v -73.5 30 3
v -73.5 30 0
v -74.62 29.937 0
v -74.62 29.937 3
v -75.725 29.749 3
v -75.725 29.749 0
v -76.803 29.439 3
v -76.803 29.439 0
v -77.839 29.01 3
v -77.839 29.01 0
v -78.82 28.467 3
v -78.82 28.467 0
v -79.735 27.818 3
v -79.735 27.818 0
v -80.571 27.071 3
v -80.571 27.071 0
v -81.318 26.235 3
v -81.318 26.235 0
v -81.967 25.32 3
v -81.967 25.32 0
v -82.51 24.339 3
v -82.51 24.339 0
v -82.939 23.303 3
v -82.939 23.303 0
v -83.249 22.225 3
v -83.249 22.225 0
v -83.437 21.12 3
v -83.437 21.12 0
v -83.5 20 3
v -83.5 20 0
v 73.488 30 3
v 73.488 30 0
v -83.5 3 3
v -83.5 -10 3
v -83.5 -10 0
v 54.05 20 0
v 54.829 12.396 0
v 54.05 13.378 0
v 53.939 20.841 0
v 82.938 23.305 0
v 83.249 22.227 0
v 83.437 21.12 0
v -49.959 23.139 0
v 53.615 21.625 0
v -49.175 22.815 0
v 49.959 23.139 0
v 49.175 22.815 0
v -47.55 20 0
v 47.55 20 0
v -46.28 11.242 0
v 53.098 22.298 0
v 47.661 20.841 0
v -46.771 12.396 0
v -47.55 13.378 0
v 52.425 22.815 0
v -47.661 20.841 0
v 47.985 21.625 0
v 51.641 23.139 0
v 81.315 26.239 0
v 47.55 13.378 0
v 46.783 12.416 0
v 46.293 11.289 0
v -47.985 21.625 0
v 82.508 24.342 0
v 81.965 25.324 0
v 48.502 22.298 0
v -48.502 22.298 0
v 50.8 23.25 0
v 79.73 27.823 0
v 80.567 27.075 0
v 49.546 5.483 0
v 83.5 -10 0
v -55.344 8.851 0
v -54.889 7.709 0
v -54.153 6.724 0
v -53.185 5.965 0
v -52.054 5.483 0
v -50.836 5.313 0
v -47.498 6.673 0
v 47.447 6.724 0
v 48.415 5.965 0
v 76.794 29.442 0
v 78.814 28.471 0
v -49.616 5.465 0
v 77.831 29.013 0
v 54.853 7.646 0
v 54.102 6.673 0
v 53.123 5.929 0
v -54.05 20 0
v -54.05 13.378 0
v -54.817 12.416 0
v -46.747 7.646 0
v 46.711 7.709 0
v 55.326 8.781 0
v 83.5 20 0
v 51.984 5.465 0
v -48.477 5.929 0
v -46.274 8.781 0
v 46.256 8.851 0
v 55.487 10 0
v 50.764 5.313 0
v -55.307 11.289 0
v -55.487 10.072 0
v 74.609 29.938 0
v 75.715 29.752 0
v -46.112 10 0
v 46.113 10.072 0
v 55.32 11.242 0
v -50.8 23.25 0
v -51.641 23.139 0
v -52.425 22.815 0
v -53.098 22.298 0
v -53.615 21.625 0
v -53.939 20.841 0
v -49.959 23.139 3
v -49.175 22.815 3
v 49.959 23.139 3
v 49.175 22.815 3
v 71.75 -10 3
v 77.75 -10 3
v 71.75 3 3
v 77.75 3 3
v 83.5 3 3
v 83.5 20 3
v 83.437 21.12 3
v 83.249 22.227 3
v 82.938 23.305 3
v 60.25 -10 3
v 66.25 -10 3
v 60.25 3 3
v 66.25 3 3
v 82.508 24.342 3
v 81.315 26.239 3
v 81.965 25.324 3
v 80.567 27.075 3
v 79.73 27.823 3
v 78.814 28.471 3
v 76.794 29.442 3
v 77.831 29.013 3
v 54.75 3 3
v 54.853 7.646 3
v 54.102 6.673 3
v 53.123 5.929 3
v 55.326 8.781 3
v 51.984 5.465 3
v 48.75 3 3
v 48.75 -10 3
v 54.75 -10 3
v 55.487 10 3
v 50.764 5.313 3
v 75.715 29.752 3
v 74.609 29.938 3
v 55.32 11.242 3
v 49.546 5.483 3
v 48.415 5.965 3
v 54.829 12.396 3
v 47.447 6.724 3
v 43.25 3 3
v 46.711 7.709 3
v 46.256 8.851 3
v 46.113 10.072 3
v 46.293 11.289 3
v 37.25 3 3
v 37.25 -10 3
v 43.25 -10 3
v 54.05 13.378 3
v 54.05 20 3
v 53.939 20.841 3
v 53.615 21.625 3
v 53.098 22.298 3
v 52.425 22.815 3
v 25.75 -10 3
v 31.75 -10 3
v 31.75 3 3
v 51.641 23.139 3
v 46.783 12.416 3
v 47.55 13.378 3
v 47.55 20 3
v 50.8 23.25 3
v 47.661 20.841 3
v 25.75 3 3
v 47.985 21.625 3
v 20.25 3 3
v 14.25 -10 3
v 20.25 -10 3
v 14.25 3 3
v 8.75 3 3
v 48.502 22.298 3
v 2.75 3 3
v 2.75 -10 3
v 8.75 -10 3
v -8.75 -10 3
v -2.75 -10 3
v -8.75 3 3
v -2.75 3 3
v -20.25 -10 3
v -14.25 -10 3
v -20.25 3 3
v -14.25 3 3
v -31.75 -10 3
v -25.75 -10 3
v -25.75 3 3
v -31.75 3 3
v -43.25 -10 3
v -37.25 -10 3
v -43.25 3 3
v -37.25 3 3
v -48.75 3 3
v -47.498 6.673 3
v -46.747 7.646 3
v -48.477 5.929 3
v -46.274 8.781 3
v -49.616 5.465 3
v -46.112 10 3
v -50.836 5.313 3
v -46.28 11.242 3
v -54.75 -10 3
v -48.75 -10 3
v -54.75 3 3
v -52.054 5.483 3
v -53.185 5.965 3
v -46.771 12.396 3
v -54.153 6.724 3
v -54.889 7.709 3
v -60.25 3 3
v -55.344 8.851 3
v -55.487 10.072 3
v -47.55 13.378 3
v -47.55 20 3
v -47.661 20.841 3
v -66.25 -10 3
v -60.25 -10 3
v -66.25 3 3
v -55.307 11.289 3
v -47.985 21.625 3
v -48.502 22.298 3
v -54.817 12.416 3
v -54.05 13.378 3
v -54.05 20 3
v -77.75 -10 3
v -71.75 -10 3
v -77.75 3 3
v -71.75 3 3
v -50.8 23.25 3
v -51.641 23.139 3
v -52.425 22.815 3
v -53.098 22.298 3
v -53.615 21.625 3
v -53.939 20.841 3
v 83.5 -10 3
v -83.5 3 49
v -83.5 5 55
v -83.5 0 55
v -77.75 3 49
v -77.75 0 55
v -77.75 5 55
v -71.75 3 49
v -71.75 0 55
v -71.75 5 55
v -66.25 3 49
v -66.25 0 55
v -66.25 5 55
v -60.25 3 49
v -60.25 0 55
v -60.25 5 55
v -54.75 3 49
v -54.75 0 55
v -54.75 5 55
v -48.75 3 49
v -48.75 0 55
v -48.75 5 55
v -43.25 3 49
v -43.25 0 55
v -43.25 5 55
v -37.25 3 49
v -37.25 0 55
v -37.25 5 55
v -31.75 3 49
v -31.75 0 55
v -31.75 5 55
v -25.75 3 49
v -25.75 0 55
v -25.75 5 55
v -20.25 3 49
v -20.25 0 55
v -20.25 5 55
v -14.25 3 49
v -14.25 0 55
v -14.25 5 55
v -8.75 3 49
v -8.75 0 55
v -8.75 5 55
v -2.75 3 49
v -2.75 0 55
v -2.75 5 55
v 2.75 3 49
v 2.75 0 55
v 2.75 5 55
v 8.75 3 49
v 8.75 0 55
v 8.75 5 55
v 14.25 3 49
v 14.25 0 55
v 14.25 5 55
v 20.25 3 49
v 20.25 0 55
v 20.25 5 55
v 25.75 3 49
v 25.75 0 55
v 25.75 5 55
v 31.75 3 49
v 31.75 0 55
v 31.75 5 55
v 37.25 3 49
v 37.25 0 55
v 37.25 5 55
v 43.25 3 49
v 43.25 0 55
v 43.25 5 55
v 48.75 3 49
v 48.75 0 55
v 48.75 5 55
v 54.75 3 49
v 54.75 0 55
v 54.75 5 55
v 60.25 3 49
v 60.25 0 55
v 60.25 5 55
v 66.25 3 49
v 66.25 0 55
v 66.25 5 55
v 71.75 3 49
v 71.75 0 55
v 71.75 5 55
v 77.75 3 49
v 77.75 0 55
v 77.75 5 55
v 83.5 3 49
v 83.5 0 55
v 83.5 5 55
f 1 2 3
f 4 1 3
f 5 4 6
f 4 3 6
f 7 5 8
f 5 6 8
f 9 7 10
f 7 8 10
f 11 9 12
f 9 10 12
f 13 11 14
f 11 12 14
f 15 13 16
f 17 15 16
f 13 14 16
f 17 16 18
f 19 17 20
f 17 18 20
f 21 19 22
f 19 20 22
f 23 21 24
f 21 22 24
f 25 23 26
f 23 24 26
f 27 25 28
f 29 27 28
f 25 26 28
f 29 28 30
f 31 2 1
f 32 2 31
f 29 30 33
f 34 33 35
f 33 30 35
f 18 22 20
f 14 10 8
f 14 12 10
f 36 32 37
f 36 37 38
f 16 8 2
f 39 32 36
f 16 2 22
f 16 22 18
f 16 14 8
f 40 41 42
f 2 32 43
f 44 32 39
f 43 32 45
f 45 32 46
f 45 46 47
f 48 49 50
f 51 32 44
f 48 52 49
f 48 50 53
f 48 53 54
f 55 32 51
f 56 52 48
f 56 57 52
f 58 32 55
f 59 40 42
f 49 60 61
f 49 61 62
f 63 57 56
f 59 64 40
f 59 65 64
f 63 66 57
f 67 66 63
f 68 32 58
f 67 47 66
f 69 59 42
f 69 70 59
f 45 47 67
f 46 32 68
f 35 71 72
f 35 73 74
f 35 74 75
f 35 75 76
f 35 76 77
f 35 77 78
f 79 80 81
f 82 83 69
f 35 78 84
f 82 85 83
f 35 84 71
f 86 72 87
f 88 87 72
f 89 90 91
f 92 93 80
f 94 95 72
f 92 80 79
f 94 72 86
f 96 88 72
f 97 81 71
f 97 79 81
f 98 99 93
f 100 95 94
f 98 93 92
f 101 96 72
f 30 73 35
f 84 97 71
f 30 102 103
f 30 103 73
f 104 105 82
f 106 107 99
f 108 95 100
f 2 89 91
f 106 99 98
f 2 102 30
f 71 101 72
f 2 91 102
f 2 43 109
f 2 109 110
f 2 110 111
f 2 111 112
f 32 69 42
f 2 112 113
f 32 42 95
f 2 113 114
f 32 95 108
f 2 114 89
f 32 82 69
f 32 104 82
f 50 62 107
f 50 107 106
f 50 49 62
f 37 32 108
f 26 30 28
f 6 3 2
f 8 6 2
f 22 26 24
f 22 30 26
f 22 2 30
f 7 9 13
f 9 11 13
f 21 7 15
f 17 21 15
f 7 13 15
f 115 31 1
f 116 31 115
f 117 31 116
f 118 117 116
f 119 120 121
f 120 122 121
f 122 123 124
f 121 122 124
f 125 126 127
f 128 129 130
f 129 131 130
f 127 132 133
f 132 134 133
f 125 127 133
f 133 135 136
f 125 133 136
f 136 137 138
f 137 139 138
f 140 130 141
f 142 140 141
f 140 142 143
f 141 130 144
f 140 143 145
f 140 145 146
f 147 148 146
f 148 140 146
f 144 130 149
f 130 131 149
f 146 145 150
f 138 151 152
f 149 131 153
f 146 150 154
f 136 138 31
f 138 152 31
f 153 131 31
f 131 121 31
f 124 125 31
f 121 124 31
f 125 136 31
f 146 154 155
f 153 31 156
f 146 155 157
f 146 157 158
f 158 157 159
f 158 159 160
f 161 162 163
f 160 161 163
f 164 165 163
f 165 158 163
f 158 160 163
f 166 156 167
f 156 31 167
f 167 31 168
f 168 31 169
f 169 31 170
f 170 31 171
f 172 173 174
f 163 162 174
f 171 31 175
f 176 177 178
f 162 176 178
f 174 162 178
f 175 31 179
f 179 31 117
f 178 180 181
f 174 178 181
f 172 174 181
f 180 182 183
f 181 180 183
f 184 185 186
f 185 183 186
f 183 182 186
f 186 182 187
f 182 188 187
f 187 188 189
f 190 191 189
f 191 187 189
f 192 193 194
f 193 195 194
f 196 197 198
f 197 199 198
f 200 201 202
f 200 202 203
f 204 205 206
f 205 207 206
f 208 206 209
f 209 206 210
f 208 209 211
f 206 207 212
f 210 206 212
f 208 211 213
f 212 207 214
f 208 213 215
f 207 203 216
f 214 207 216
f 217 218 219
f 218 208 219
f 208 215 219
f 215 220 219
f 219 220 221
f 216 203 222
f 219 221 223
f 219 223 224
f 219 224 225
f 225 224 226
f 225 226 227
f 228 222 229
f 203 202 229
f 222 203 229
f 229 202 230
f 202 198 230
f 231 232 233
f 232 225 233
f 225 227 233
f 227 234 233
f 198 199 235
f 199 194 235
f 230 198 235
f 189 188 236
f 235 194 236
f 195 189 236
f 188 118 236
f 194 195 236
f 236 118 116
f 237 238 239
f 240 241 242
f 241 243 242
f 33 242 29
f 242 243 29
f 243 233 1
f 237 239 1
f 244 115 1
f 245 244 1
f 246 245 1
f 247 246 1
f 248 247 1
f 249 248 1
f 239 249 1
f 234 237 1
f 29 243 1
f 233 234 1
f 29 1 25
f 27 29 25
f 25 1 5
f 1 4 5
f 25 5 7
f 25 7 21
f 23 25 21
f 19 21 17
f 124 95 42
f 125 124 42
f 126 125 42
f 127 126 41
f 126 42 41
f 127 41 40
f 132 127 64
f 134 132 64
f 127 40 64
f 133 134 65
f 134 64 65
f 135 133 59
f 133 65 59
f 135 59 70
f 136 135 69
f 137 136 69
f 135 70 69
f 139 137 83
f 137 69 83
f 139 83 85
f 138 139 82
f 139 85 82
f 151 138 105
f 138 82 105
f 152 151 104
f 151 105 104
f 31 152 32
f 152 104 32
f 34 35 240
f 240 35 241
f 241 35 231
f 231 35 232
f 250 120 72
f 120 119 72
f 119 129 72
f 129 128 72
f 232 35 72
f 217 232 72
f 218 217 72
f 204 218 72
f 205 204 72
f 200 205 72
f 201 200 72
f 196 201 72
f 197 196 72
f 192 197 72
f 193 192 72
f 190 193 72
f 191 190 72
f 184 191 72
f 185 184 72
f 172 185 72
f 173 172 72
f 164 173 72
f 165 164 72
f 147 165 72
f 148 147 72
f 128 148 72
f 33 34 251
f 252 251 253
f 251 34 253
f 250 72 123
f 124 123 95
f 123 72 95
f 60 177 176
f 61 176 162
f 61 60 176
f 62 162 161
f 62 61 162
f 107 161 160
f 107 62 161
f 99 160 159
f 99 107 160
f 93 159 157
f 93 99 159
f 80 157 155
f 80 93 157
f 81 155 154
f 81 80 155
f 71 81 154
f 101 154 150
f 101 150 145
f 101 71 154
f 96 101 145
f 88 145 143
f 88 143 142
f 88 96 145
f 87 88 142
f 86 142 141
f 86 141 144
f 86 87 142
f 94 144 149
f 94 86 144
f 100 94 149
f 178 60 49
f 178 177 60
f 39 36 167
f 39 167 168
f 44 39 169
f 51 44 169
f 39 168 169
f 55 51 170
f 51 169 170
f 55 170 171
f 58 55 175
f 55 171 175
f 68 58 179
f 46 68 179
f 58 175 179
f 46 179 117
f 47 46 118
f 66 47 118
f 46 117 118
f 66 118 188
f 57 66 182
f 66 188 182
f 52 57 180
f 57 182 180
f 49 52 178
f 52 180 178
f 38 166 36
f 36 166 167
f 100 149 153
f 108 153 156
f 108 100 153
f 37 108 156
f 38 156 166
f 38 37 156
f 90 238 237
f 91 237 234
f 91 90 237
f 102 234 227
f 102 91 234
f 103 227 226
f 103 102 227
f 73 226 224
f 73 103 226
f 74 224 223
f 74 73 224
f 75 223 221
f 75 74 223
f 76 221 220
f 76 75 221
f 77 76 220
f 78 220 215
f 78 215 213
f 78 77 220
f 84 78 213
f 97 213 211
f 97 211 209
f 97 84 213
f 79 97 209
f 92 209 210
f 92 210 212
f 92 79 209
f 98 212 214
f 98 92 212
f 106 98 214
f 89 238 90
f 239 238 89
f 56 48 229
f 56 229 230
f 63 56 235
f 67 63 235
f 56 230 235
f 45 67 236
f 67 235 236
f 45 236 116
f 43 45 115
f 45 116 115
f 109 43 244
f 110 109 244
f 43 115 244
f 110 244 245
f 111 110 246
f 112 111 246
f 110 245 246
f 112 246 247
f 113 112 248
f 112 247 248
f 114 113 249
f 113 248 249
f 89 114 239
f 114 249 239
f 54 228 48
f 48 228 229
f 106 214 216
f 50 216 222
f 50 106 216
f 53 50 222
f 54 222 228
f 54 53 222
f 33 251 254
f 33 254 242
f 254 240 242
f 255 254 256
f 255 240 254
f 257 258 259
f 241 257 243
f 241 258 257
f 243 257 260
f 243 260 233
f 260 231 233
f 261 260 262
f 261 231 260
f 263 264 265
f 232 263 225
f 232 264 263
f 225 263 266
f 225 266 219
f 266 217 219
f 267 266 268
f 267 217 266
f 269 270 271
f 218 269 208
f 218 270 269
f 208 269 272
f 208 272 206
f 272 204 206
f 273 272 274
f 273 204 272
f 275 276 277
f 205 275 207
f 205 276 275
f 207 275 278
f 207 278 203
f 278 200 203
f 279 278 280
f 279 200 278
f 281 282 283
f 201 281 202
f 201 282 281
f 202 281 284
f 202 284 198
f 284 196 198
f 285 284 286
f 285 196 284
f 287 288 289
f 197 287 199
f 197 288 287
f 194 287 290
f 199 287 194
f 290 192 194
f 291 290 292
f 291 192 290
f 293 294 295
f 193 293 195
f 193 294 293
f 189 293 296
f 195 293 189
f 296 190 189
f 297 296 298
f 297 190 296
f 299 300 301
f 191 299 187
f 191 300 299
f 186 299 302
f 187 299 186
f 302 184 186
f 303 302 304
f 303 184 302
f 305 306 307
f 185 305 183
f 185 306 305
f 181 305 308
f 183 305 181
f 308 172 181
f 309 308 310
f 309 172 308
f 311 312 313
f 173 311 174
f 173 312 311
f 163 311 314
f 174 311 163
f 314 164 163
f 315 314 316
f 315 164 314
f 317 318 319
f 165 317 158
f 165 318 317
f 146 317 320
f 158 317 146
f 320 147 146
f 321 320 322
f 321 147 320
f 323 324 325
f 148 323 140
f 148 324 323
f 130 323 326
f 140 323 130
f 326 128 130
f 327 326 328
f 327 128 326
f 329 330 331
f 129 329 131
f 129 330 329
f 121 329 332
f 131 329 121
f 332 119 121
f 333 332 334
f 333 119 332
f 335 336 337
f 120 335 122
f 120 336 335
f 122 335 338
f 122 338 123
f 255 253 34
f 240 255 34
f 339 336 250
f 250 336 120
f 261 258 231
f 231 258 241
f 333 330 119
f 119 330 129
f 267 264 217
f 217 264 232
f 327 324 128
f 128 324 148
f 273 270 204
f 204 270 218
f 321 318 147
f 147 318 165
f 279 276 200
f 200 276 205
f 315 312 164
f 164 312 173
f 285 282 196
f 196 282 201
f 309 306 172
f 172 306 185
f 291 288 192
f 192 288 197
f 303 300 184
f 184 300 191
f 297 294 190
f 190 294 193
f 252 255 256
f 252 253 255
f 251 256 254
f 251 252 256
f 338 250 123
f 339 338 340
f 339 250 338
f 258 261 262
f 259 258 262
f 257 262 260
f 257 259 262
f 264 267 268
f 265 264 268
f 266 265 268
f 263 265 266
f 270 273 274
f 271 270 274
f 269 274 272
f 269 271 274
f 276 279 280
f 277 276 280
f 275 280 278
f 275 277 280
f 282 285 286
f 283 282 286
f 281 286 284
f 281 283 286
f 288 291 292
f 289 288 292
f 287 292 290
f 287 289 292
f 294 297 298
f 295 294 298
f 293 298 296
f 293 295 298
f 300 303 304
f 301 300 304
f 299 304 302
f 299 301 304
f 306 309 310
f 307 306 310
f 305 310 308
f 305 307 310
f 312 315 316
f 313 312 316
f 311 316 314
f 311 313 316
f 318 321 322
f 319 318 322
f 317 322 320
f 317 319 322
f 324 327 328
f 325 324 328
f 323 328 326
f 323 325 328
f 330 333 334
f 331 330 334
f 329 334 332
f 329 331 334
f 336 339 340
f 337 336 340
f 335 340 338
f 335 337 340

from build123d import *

# Parameters (mm, degrees)
SKETCH004_AS_DRAWN_W                 = 6
SKETCH004_AS_DRAWN_H                 = 52
EXTRUDE003_DEPTH                     = 15
EXTRUDE003_ONTO_SKETCH004_ROLL_ANGLE = 90
EXTRUDE002_DEPTH                     = 167
EXTRUDE001_DEPTH                     = 3
SKETCH_R                             = 4.6875
EXTRUDE_DEPTH                        = 3


with BuildPart() as extrude003:
    # Sketch004 as drawn → Extrude003 (new)
    with BuildSketch(Plane.XY):
        with Locations((-74.75, 29)):
            Rectangle(SKETCH004_AS_DRAWN_W, SKETCH004_AS_DRAWN_H)
        with Locations((-63.25, 29)):
            Rectangle(SKETCH004_AS_DRAWN_W, SKETCH004_AS_DRAWN_H)
        with Locations((-51.75, 29)):
            Rectangle(SKETCH004_AS_DRAWN_W, SKETCH004_AS_DRAWN_H)
        with Locations((-40.25, 29)):
            Rectangle(SKETCH004_AS_DRAWN_W, SKETCH004_AS_DRAWN_H)
        with Locations((-28.75, 29)):
            Rectangle(SKETCH004_AS_DRAWN_W, SKETCH004_AS_DRAWN_H)
        with Locations((-17.25, 29)):
            Rectangle(SKETCH004_AS_DRAWN_W, SKETCH004_AS_DRAWN_H)
        with Locations((-5.75, 29)):
            Rectangle(SKETCH004_AS_DRAWN_W, SKETCH004_AS_DRAWN_H)
        with Locations((5.75, 29)):
            Rectangle(SKETCH004_AS_DRAWN_W, SKETCH004_AS_DRAWN_H)
        with Locations((17.25, 29)):
            Rectangle(SKETCH004_AS_DRAWN_W, SKETCH004_AS_DRAWN_H)
        with Locations((28.75, 29)):
            Rectangle(SKETCH004_AS_DRAWN_W, SKETCH004_AS_DRAWN_H)
        with Locations((40.25, 29)):
            Rectangle(SKETCH004_AS_DRAWN_W, SKETCH004_AS_DRAWN_H)
        with Locations((51.75, 29)):
            Rectangle(SKETCH004_AS_DRAWN_W, SKETCH004_AS_DRAWN_H)
        with Locations((63.25, 29)):
            Rectangle(SKETCH004_AS_DRAWN_W, SKETCH004_AS_DRAWN_H)
        with Locations((74.75, 29)):
            Rectangle(SKETCH004_AS_DRAWN_W, SKETCH004_AS_DRAWN_H)
    extrude(amount=-EXTRUDE003_DEPTH)


with BuildPart() as extrude003_1:
    # Extrude003 onto Sketch004 roll: moved
    add(extrude003.part.rotate(Axis((0, 0, 0), (1, 0, 0)), EXTRUDE003_ONTO_SKETCH004_ROLL_ANGLE))


with BuildPart() as extrude003_2:
    # Extrude003 onto Sketch004 placement: moved
    add(extrude003_1.part.moved(Location((0, -10, 0))))


with BuildPart() as cut001:
    # Sketch003 → Extrude002 (new body)
    with BuildSketch(Plane(origin=(-83.5, 0, 0), x_dir=(0, -1, 0), z_dir=(-1, 0, 0))):
        Polygon((0, 55), (-5, 55), (-3, 49), (-3, 3), (10, 3), align=None)
    extrude(amount=-EXTRUDE002_DEPTH)

    # Cut001: cut Extrude003
    add(extrude003_2.part, mode=Mode.SUBTRACT)


with BuildPart() as extrude001:
    # Sketch001 → Extrude001 (new body)
    with BuildSketch(Plane.XY.offset(3)):
        with BuildLine():
            ThreePointArc((-54.05, 10), (-50.8, 6.75), (-47.55, 10))
            Line((-47.55, 10), (-47.55, 20))
            ThreePointArc((-47.55, 20), (-50.8, 23.25), (-54.05, 20))
            Line((-54.05, 10), (-54.05, 20))
        make_face()
        with BuildLine():
            ThreePointArc((47.55, 10), (50.8, 6.75), (54.05, 10))
            Line((54.05, 10), (54.05, 20))
            ThreePointArc((54.05, 20), (50.8, 23.25), (47.55, 20))
            Line((47.55, 10), (47.55, 20))
        make_face()
    extrude(amount=-EXTRUDE001_DEPTH)


with BuildPart() as fusion:
    # Sketch → Extrude (new body)
    with BuildSketch(Plane.XY):
        with BuildLine():
            Line((-83.5, 20), (-83.5, -10))
            Line((-83.5, -10), (83.5, -10))
            Line((83.5, -10), (83.5, 20))
            ThreePointArc((83.5, 20), (80.566817, 27.075323), (73.487973, 30))
            Line((-73.500027, 30), (73.487973, 30))
            ThreePointArc((-73.500027, 30), (-80.571077, 27.071058), (-83.5, 20))
        make_face()
        with Locations((50.8, 10)):
            Circle(SKETCH_R, mode=Mode.SUBTRACT)
        with Locations((-50.8, 10)):
            Circle(SKETCH_R, mode=Mode.SUBTRACT)
    extrude(amount=EXTRUDE_DEPTH)

    # Cut: cut Extrude001
    add(extrude001.part, mode=Mode.SUBTRACT)

    # Fusion: union Cut001
    add(cut001.part)


solid = fusion.part
